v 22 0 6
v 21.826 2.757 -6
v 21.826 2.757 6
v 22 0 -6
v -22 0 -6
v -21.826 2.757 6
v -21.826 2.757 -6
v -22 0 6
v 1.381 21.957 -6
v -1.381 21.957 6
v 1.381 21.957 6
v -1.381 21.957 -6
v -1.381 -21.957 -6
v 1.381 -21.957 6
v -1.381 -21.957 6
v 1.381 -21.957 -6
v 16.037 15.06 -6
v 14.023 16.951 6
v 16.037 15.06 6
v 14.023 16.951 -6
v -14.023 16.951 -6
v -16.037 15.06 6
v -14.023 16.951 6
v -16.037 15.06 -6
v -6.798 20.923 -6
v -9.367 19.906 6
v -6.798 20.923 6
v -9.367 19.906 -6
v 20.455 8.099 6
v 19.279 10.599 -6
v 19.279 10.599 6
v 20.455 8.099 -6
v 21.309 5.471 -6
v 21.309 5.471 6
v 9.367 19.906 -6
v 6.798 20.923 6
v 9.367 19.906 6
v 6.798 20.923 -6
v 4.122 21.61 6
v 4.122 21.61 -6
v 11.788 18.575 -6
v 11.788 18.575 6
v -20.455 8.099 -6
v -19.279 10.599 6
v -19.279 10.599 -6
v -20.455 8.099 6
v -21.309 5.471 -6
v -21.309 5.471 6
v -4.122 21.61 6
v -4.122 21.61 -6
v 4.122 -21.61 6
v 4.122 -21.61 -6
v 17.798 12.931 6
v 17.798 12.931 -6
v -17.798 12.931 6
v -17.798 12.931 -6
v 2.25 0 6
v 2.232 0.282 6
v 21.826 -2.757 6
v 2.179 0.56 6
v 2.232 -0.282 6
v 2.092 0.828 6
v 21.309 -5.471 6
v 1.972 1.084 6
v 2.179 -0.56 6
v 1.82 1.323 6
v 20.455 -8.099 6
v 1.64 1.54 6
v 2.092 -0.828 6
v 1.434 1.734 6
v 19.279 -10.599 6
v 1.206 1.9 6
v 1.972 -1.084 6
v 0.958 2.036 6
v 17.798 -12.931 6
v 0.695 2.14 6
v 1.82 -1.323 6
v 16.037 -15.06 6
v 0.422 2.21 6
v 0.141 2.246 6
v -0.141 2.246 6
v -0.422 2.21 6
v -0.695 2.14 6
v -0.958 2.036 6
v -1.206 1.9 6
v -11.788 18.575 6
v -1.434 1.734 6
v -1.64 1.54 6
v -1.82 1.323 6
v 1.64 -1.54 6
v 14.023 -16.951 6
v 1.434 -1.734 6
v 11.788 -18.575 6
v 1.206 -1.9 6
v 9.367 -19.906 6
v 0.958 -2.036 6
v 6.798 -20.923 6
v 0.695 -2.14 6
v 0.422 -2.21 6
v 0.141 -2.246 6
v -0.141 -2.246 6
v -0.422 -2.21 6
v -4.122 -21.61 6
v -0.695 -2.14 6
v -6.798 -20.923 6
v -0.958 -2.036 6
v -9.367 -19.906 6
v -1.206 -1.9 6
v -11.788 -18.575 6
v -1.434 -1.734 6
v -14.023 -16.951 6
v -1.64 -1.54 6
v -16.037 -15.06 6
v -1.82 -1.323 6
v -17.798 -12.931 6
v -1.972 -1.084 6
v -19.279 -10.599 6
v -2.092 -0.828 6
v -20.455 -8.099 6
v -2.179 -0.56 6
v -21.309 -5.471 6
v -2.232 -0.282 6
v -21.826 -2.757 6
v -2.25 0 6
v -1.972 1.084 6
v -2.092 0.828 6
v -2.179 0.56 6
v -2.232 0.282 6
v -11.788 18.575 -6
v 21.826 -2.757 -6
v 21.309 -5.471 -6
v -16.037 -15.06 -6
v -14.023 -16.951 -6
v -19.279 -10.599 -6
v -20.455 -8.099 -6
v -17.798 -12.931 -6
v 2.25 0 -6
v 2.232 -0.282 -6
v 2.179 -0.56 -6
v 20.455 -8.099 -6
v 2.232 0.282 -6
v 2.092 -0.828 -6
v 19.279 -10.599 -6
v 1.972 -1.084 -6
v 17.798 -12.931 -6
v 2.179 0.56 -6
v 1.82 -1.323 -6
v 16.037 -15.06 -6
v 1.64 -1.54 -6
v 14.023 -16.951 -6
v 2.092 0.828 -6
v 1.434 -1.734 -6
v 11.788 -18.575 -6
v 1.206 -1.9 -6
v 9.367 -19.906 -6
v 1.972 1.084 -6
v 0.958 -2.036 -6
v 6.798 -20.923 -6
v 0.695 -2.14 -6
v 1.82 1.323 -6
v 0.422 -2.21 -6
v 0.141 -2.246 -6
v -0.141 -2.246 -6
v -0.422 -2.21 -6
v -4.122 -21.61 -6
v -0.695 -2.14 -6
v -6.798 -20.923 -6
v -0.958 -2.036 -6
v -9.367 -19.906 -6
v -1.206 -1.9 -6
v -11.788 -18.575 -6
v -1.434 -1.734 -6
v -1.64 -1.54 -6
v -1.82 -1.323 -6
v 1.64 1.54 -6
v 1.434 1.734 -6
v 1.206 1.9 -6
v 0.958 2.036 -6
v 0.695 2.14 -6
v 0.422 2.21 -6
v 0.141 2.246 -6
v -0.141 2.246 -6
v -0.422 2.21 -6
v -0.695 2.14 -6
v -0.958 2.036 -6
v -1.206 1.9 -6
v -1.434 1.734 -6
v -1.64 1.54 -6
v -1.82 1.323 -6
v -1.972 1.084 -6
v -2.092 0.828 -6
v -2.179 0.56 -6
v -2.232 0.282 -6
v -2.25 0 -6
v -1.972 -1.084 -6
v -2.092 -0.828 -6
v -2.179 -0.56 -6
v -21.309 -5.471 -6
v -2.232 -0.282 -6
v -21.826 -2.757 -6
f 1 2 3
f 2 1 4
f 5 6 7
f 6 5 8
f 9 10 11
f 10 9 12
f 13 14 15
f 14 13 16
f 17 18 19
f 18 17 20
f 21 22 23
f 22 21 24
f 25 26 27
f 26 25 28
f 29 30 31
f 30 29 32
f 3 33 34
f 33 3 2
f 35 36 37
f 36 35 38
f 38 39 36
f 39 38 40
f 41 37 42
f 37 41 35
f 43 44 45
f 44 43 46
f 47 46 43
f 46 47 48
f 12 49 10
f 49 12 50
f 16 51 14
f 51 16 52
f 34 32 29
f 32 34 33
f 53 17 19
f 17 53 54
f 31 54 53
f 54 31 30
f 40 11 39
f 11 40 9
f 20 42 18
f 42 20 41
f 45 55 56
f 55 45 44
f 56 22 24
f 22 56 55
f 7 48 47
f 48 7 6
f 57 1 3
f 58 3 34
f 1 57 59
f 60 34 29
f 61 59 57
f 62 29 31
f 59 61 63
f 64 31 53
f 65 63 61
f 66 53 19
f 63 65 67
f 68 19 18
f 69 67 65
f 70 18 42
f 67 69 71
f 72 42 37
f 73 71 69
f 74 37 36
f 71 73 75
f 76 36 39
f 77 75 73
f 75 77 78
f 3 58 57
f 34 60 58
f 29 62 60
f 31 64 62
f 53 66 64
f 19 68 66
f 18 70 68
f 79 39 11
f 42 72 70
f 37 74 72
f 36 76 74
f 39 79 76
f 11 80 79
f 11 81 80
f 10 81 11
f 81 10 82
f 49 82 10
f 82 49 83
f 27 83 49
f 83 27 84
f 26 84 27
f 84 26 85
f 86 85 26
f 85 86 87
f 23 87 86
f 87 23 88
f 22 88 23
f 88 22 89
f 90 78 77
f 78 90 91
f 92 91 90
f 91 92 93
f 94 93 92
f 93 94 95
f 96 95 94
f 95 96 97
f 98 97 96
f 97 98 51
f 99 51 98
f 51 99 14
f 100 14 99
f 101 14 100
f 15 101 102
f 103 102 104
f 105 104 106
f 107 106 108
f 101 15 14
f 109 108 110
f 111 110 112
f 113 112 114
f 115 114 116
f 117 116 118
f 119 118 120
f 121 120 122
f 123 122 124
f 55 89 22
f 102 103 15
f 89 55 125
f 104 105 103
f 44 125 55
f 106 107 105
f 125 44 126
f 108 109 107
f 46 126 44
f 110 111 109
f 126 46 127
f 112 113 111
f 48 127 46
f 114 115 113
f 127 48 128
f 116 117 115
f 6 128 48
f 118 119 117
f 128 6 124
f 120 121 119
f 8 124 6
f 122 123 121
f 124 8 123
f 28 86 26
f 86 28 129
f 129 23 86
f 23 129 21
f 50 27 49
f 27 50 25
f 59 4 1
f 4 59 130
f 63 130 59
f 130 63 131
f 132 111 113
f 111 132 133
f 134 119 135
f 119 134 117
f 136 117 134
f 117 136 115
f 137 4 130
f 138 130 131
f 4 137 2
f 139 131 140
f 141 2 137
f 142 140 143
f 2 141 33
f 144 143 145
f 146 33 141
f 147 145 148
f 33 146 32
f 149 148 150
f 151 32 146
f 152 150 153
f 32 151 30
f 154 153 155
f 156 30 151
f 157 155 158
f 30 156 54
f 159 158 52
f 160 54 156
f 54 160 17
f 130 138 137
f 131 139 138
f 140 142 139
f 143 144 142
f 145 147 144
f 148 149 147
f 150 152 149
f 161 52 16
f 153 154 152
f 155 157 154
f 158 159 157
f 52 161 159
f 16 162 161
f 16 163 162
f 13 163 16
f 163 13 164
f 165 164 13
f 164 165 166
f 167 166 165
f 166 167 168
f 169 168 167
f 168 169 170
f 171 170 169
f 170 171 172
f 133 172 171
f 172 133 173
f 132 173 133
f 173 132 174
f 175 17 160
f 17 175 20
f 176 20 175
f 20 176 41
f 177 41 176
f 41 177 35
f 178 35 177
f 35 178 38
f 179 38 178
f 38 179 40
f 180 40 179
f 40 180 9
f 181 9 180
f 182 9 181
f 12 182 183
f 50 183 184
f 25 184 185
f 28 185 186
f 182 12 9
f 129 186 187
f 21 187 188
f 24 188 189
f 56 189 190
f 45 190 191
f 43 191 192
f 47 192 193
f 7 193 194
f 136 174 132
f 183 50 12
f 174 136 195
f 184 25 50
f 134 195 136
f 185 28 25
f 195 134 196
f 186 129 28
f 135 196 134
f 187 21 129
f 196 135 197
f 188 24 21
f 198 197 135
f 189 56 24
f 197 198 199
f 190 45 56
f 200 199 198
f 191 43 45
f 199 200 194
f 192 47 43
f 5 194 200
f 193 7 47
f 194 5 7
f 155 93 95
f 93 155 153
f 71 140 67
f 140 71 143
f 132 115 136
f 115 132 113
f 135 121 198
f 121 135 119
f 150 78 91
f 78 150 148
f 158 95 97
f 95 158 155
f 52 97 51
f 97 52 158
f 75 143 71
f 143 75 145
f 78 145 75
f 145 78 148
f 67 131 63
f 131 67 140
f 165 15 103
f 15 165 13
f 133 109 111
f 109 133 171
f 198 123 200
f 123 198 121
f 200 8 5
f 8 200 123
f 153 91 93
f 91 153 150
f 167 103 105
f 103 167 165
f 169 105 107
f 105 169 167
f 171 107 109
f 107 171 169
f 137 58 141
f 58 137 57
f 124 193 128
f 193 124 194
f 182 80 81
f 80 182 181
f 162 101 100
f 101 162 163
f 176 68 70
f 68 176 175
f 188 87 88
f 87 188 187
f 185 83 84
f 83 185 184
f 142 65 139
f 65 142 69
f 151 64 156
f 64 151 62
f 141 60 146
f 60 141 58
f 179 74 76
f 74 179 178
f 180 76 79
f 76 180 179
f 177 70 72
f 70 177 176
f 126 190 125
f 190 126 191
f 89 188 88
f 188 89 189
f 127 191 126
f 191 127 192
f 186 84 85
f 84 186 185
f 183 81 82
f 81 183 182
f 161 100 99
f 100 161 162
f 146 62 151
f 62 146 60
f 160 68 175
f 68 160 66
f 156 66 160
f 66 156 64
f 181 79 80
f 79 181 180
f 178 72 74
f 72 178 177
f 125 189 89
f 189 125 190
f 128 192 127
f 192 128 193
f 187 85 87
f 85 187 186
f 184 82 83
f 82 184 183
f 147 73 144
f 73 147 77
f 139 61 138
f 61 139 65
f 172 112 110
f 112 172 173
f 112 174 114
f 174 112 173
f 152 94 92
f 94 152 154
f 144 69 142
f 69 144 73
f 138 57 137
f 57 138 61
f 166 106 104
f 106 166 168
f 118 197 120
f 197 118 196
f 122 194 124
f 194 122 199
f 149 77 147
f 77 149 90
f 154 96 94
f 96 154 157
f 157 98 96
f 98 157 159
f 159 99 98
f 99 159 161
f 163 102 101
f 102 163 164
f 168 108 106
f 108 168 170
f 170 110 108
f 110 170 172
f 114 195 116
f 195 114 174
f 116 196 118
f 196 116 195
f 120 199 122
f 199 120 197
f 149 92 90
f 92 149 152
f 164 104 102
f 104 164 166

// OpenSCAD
$fn = 50;


difference() {
	union() {
		translate(v = [0, 0, -6.0000000000]) {
			cylinder(h = 12, r = 22.0000000000);
		}
	}
	union() {
		translate(v = [0, 0, -100.0000000000]) {
			cylinder(h = 200, r = 2.2500000000);
		}
	}
}
